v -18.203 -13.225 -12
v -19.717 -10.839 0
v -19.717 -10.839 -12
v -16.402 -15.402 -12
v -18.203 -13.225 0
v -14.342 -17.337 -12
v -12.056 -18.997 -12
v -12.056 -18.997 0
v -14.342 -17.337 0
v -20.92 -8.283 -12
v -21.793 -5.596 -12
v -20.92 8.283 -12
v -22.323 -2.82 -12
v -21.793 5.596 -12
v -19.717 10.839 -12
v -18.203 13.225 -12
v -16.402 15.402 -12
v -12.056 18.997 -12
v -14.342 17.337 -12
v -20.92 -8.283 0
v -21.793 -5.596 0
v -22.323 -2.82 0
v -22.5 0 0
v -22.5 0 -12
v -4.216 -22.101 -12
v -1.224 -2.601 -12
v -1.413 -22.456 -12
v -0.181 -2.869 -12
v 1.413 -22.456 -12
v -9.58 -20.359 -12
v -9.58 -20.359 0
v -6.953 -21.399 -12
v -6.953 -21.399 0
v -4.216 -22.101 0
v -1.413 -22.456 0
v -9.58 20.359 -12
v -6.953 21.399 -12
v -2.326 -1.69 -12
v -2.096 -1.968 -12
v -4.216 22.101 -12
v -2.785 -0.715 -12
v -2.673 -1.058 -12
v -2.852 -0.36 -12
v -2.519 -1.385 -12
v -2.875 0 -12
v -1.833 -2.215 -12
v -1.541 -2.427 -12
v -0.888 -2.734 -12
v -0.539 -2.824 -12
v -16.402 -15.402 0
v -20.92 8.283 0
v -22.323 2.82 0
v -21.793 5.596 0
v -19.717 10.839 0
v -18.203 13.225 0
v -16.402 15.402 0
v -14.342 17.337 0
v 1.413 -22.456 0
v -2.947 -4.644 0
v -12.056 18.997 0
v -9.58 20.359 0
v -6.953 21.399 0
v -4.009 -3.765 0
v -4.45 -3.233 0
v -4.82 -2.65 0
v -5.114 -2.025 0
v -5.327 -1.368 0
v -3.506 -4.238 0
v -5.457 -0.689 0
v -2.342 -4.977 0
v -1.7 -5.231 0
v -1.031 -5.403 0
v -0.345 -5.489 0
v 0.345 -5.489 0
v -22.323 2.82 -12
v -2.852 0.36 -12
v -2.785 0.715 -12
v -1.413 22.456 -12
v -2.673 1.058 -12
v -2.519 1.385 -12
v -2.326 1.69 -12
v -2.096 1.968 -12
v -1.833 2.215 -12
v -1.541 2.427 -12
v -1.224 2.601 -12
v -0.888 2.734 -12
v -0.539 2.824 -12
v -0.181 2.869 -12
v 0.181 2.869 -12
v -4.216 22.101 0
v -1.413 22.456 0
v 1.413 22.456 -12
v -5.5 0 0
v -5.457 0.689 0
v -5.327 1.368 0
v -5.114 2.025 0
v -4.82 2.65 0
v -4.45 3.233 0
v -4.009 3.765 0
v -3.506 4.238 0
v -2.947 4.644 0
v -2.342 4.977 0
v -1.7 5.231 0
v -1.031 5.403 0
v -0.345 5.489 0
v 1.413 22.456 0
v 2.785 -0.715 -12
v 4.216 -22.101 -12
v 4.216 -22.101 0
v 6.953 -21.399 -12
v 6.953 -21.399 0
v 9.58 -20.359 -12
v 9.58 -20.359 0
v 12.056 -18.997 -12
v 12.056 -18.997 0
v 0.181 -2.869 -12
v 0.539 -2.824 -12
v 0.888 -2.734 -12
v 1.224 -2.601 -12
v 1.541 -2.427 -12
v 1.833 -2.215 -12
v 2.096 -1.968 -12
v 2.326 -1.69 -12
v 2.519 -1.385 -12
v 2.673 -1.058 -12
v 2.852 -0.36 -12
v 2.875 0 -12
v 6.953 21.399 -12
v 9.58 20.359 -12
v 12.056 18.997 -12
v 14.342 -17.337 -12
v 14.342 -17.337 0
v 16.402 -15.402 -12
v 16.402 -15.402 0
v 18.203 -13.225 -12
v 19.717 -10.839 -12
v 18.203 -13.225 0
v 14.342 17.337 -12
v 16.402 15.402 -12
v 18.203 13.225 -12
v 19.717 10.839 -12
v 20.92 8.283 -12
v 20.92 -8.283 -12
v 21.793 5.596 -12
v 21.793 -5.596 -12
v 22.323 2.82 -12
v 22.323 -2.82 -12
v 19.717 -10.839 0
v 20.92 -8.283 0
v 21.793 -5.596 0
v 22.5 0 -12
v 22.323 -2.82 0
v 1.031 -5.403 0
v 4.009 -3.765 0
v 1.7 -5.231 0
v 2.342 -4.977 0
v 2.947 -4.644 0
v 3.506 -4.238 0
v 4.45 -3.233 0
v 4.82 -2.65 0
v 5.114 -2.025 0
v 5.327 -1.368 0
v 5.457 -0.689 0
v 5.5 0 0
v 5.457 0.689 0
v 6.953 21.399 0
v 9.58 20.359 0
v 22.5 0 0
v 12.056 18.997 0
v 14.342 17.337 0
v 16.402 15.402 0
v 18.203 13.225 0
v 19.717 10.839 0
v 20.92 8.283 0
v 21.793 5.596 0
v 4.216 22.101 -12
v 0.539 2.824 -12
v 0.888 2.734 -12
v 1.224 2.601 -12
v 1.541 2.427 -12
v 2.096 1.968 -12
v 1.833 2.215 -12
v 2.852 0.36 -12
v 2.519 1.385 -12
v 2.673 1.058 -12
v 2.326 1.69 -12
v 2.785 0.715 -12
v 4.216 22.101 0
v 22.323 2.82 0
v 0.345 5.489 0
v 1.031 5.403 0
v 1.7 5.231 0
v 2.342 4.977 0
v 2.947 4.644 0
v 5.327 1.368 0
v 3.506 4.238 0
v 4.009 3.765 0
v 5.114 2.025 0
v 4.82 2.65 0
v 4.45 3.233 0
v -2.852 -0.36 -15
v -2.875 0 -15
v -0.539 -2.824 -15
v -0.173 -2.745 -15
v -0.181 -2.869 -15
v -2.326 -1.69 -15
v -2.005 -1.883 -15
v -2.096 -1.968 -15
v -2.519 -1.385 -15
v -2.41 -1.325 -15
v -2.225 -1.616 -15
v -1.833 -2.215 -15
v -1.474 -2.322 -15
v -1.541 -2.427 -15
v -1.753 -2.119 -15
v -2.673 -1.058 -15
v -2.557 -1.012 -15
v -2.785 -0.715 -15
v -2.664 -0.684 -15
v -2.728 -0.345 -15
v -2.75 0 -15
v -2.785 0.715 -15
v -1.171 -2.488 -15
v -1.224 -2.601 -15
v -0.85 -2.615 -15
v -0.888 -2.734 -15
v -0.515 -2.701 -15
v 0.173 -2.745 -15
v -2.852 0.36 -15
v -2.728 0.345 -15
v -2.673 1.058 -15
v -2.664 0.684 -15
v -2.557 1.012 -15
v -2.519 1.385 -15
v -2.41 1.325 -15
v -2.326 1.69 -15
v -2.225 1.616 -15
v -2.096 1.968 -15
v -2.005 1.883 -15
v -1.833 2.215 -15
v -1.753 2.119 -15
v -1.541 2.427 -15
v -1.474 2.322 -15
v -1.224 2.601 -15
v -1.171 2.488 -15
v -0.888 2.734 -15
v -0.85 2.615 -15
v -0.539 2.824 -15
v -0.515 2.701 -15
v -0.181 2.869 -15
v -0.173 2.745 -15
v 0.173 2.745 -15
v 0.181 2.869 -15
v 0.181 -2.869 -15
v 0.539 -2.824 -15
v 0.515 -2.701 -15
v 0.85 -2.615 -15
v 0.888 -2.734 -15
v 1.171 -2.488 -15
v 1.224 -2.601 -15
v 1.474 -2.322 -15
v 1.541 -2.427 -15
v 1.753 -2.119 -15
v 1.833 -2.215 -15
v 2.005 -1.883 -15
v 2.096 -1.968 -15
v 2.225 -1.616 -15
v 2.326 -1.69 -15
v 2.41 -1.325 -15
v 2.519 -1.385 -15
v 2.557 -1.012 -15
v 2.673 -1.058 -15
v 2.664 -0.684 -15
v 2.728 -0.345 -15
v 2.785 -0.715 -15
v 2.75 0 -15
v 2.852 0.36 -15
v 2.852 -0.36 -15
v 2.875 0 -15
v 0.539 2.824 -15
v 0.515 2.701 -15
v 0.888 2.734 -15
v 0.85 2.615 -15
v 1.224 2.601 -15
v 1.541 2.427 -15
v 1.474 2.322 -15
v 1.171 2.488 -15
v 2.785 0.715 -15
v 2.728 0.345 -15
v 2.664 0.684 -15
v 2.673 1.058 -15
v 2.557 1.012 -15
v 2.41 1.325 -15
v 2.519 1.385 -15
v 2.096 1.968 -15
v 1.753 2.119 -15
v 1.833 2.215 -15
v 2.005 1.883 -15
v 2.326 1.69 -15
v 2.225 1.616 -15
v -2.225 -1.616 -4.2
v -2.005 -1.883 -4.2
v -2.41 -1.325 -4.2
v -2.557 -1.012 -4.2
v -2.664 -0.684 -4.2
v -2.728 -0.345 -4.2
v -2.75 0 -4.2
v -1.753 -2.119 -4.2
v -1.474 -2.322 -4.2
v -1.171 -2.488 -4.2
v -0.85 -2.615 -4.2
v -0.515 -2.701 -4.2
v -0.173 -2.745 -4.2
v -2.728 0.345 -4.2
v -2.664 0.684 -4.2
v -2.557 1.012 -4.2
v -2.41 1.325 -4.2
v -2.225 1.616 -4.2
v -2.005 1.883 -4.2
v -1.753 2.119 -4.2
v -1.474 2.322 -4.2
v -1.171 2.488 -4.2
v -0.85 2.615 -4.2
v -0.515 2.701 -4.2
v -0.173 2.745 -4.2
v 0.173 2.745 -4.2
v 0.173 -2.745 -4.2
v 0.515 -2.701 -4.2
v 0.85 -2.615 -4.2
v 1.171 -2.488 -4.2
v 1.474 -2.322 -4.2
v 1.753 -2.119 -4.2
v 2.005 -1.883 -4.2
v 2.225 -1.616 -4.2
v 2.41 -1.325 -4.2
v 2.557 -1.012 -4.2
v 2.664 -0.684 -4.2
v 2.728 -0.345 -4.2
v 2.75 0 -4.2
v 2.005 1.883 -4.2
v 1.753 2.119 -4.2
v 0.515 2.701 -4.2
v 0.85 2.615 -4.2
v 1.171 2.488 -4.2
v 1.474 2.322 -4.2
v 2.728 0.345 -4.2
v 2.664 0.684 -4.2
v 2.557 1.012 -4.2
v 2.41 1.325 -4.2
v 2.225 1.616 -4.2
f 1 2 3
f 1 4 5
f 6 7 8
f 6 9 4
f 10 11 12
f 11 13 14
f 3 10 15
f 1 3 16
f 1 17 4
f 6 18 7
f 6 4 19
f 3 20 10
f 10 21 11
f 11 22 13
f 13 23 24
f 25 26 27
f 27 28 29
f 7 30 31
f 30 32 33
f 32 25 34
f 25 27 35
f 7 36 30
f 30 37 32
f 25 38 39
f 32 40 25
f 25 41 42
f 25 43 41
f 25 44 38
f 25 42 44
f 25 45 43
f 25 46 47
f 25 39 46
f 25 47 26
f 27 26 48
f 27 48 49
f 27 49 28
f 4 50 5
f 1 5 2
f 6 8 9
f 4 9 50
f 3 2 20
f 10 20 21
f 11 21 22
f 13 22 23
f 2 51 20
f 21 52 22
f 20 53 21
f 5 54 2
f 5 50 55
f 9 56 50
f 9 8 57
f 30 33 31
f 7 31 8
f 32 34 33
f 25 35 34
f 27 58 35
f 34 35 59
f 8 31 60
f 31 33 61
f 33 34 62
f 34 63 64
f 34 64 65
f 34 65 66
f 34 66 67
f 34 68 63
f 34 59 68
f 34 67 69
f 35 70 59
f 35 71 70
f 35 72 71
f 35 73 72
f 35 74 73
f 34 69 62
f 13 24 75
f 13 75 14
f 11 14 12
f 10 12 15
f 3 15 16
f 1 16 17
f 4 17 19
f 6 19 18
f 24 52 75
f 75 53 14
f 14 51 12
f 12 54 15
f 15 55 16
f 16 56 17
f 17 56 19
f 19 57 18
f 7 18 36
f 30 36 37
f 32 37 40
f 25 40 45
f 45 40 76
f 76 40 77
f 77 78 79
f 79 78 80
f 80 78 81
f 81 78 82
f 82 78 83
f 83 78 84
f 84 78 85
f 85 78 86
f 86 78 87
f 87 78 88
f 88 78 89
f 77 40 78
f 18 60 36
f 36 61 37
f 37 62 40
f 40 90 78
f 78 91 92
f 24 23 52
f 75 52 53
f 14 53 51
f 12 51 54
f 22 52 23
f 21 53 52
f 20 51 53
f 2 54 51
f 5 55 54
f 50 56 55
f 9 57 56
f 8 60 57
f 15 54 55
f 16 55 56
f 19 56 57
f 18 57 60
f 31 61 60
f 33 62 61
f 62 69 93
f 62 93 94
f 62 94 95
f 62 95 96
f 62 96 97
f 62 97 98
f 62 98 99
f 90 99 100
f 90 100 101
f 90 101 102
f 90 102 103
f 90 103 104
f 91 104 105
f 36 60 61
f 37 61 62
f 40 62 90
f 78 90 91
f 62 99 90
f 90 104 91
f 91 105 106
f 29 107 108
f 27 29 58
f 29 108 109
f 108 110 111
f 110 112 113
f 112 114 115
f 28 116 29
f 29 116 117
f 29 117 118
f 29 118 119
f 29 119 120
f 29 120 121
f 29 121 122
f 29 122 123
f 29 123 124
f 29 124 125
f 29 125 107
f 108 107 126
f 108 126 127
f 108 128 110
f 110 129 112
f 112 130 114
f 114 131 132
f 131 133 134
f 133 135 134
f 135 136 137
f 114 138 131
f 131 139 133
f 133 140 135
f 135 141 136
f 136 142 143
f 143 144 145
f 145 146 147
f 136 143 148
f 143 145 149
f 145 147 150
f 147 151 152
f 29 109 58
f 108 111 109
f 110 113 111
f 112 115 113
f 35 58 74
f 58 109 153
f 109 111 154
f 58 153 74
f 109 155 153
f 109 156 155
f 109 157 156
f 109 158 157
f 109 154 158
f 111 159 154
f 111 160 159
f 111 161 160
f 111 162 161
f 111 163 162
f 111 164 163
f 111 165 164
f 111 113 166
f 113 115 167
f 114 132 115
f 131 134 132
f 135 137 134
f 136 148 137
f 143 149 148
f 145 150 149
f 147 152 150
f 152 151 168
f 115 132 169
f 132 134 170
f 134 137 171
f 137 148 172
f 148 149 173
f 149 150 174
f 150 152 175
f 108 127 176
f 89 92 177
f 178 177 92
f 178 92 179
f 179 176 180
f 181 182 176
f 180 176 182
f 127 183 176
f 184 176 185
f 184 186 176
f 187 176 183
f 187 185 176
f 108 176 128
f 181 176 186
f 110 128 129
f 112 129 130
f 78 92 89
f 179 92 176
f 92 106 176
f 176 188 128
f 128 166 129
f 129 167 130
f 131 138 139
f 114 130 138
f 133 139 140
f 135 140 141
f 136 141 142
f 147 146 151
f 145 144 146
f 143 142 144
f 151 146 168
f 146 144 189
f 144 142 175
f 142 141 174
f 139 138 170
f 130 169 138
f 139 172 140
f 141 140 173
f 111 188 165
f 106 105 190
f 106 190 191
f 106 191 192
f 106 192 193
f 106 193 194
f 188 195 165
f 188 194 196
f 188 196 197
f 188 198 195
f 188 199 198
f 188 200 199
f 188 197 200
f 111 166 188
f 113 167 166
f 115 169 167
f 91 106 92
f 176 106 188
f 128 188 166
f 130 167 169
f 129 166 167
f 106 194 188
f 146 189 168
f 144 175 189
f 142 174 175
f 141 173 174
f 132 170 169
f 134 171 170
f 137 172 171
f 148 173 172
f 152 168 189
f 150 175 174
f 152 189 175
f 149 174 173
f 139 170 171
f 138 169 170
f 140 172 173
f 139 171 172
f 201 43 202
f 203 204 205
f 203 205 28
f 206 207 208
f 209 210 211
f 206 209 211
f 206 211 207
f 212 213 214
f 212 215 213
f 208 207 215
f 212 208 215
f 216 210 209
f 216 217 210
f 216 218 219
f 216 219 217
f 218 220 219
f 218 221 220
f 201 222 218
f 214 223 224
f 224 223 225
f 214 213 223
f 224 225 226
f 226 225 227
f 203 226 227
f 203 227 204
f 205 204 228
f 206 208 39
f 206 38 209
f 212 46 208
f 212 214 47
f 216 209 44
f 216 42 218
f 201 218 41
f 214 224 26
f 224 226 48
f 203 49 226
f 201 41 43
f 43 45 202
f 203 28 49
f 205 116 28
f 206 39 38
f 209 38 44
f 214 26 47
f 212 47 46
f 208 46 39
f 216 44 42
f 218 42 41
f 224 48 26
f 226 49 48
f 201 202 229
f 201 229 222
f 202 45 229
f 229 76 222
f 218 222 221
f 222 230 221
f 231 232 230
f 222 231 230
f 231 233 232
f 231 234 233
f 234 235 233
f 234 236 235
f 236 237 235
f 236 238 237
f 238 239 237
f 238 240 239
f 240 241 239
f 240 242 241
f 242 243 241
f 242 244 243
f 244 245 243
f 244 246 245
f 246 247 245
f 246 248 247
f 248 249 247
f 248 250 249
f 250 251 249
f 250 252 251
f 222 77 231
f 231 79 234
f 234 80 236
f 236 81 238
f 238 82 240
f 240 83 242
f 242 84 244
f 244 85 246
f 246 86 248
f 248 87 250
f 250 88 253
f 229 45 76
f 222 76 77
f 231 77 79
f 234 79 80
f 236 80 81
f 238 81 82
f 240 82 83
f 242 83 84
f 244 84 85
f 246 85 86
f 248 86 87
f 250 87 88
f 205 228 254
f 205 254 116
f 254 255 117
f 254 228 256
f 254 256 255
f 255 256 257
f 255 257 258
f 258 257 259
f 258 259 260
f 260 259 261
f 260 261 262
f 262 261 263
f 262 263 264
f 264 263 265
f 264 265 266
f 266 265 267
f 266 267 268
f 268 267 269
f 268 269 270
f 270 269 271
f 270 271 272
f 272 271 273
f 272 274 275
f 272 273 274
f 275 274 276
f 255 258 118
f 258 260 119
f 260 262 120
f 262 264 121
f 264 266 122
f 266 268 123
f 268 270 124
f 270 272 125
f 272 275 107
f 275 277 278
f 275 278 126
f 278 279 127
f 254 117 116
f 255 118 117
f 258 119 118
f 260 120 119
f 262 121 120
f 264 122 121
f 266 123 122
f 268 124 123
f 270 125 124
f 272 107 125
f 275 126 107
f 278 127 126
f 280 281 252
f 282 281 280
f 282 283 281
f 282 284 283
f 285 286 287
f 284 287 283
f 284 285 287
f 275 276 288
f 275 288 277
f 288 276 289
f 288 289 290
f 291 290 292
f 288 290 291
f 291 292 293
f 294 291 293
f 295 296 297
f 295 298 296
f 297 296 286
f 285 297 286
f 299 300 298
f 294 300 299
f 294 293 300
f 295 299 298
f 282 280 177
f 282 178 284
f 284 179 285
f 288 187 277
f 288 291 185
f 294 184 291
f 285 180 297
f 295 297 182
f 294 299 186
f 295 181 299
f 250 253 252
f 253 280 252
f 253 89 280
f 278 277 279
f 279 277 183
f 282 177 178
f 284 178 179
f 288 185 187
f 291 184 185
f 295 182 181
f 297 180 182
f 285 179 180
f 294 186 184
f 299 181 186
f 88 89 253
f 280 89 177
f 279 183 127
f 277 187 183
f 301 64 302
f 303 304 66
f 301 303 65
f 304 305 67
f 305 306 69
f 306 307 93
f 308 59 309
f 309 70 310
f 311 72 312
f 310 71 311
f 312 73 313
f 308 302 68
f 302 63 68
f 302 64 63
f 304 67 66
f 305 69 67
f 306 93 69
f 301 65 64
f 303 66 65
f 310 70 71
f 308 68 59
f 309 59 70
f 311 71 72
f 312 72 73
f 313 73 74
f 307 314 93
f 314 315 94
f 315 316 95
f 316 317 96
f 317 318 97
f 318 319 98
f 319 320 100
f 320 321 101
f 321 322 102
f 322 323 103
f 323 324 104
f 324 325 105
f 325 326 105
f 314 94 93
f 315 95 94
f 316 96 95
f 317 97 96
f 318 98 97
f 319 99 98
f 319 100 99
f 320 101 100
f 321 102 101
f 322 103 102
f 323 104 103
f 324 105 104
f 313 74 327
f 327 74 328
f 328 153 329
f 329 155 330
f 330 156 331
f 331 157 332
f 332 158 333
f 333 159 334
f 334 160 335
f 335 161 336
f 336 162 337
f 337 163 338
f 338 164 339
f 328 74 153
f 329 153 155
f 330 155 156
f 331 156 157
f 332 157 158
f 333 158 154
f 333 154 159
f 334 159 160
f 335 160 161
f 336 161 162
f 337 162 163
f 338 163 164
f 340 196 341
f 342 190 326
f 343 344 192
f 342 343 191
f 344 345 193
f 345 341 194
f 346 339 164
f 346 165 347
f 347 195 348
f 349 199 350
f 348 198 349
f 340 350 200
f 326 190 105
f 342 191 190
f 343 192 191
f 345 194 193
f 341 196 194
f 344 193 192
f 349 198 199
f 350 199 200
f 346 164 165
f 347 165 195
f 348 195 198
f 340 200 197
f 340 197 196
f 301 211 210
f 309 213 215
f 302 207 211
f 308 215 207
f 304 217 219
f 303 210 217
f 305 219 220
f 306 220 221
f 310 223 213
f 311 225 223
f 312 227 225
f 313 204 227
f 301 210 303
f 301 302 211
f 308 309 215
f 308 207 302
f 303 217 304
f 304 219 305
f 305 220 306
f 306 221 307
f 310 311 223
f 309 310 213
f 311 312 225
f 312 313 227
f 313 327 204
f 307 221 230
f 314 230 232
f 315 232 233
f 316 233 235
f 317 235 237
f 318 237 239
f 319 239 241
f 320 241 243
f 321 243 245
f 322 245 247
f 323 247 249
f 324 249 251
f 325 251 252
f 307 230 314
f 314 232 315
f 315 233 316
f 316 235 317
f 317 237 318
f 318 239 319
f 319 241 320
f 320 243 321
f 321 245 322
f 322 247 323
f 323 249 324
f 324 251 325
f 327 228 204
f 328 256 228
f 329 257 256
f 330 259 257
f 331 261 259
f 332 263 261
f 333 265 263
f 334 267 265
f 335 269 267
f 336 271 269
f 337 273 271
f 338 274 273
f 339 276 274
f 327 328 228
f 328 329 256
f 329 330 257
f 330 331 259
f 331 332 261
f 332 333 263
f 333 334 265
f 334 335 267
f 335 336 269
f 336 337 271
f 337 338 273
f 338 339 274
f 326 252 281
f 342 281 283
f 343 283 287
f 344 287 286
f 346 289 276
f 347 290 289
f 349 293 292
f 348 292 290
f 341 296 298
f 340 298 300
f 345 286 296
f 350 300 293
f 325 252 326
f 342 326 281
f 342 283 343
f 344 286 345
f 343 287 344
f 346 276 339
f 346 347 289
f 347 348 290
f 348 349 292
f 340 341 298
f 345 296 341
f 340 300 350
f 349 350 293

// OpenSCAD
$fn = 50;

difference() {
	union() {
		translate(v = [0, 0, -12.0]) {
			cylinder(h = 12, r = 22.5);
		}
		#translate(v = [0, 0, -15.0]) {
			cylinder(h = 15, r = 2.875);
		}
	}
	union() {
		translate(v = [0, 0, 0]) {
			rotate(a = [0, 0, 0]) {
				difference() {
					union() {
						translate(v = [0, 0, -15.0]) {
							cylinder(h = 15, r = 2.25);
						}
						translate(v = [0, 0, -4.2]) {
							cylinder(h = 4.2, r1 = 2.75, r2 = 5.5);
						}
						translate(v = [0, 0, -15.0]) {
							cylinder(h = 15, r = 2.75);
						}
						translate(v = [0, 0, -15.0]) {
							cylinder(h = 15, r = 2.25);
						}
					}
					union();
				}
			}
		}
	}
}
